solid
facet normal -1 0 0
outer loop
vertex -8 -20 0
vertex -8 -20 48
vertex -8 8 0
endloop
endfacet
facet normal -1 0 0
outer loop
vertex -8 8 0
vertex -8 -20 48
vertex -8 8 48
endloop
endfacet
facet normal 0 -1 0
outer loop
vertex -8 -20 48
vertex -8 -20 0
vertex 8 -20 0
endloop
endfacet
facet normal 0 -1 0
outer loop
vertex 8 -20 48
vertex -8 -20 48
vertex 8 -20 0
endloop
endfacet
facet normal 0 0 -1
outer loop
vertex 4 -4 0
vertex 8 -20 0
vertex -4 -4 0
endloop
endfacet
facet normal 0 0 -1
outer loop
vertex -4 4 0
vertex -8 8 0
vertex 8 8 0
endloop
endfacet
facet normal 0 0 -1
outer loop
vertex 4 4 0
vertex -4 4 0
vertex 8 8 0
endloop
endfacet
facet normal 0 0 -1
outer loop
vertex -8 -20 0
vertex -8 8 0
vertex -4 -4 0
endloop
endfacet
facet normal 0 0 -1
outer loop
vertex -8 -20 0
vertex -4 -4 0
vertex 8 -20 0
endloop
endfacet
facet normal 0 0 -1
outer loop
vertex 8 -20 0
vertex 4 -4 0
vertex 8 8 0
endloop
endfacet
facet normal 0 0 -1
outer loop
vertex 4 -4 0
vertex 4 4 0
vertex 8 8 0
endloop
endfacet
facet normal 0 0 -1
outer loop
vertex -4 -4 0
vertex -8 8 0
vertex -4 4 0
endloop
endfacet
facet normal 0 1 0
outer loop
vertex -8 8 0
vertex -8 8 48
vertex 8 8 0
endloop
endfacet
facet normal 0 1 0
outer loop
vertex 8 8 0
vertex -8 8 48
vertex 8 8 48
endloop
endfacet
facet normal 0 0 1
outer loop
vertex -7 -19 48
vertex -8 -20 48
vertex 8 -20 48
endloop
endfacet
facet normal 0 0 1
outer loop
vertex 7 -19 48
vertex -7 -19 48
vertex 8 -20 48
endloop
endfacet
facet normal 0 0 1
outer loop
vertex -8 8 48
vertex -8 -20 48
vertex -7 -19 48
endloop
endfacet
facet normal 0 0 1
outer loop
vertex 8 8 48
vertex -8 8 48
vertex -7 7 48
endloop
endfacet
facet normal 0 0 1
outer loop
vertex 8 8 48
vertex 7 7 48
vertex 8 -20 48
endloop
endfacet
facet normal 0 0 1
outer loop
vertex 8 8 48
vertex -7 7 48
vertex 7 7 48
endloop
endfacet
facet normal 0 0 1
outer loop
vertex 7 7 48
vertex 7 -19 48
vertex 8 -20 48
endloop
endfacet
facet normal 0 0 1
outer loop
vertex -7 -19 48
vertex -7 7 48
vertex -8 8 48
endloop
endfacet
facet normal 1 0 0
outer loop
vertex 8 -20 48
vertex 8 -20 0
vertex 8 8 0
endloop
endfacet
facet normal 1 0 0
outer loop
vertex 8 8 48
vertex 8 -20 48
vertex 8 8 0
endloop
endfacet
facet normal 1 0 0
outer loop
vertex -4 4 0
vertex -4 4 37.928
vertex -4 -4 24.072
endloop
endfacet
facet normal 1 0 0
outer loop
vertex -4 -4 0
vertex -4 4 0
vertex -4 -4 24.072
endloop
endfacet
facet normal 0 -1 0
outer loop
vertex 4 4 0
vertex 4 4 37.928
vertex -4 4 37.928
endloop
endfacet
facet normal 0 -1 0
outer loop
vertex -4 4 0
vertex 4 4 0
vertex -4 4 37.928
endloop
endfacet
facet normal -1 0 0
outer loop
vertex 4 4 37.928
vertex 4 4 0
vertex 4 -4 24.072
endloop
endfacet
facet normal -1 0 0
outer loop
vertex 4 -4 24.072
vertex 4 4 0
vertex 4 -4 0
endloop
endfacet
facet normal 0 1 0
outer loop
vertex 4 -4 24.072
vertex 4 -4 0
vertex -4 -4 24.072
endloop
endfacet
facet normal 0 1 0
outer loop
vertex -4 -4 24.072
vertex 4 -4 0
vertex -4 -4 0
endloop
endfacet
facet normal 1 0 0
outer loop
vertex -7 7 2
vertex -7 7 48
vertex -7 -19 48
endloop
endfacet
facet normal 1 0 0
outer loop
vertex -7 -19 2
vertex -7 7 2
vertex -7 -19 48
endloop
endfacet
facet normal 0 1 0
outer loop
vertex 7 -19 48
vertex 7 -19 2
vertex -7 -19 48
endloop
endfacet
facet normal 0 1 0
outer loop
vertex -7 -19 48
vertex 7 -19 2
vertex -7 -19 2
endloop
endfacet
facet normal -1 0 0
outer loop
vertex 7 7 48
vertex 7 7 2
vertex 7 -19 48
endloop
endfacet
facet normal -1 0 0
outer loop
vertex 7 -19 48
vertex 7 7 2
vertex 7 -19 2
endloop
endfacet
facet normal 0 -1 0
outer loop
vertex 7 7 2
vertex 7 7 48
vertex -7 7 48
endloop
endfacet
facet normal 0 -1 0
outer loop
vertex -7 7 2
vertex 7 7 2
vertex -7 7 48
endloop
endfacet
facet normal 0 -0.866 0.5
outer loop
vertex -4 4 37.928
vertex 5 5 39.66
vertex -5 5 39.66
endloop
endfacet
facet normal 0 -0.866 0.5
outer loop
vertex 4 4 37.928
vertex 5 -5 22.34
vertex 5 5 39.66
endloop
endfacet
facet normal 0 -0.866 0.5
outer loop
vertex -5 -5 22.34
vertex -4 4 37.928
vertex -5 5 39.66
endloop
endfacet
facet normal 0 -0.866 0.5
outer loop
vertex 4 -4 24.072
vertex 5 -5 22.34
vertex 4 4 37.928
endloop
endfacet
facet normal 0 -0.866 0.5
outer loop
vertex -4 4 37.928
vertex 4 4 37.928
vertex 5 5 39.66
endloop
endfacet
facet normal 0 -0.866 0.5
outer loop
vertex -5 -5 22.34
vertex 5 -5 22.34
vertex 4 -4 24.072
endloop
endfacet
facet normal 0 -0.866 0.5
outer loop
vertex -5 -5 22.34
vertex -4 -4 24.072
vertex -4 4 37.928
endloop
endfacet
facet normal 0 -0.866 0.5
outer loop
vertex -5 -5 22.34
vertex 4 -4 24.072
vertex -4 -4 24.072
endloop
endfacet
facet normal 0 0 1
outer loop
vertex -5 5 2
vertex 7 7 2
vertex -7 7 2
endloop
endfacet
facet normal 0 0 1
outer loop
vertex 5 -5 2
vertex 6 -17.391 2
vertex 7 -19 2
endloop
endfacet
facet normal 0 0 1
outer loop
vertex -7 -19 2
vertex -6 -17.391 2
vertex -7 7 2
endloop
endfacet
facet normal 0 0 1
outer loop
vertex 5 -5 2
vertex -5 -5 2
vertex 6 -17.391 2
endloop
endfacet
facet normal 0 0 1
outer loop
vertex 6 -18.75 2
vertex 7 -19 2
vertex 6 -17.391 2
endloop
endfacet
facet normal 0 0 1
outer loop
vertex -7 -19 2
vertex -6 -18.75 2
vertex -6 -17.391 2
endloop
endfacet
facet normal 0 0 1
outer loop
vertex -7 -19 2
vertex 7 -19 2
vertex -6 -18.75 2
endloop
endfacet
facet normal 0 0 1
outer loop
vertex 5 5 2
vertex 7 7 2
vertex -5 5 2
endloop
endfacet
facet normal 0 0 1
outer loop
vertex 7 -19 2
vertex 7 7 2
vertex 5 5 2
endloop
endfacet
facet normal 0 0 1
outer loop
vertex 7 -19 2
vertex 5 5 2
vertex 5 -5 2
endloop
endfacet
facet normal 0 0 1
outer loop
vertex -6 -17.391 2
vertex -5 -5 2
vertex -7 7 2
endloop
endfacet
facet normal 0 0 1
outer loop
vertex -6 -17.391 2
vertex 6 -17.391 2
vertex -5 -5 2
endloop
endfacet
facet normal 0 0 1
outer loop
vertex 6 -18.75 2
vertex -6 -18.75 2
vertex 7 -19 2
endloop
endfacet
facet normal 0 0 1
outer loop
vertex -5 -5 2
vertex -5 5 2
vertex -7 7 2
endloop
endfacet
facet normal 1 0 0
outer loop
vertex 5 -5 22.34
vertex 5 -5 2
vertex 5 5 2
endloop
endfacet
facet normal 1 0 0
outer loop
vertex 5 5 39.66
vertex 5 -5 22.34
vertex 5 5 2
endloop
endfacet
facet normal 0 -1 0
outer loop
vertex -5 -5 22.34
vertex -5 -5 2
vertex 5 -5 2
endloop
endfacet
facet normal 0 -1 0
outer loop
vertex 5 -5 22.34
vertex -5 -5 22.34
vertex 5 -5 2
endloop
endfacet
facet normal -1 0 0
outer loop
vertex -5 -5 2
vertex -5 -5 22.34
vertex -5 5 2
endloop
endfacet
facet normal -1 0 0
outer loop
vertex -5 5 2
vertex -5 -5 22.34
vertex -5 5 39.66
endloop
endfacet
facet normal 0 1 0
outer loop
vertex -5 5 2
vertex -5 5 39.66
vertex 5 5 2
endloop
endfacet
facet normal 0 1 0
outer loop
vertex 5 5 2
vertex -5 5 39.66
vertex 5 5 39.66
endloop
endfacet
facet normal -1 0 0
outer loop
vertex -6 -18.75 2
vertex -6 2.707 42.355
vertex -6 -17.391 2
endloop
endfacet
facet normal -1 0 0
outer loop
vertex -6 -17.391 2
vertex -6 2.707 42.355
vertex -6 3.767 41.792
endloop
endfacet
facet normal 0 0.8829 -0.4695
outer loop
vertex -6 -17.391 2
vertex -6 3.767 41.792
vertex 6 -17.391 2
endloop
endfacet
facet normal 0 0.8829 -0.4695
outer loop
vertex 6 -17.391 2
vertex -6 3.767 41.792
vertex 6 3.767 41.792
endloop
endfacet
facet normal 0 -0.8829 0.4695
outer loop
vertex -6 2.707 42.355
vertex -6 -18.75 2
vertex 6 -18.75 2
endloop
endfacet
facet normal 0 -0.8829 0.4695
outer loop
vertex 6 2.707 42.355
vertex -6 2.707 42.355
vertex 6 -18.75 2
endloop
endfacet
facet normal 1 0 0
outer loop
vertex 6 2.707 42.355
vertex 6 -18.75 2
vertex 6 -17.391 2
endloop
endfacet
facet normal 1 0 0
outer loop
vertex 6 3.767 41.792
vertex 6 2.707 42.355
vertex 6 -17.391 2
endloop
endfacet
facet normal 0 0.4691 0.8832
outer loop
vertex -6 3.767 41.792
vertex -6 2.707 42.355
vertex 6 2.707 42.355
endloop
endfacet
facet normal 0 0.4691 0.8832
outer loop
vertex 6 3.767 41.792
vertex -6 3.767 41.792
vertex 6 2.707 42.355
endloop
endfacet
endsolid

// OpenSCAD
union() {
translate([0,0,20]) difference() {
union() {
intersection() {
union() {
difference() {
difference() {
cube([10,10,40],center=true); 
cube([8,8,40],center=true); 
}
translate([0,0,11]) rotate([60,0,0]) translate([0,0,50]) cube([100,100,100],center=true); 
}
translate([0,-8.5,0]) rotate([-28,0,0]) cube([12,1.2,50],center=true); 
}
translate([0,0,5]) cube([100,100,50],center=true); 
}
translate([0,-6,4]) difference() {
cube([16,28,48],center=true); 
translate([0,0,2]) cube([14,26,48],center=true); 
}
}
translate([0,0,-30]) cube([8,8,40],center=true); 
}
%cube([20,30,40]); 
}
